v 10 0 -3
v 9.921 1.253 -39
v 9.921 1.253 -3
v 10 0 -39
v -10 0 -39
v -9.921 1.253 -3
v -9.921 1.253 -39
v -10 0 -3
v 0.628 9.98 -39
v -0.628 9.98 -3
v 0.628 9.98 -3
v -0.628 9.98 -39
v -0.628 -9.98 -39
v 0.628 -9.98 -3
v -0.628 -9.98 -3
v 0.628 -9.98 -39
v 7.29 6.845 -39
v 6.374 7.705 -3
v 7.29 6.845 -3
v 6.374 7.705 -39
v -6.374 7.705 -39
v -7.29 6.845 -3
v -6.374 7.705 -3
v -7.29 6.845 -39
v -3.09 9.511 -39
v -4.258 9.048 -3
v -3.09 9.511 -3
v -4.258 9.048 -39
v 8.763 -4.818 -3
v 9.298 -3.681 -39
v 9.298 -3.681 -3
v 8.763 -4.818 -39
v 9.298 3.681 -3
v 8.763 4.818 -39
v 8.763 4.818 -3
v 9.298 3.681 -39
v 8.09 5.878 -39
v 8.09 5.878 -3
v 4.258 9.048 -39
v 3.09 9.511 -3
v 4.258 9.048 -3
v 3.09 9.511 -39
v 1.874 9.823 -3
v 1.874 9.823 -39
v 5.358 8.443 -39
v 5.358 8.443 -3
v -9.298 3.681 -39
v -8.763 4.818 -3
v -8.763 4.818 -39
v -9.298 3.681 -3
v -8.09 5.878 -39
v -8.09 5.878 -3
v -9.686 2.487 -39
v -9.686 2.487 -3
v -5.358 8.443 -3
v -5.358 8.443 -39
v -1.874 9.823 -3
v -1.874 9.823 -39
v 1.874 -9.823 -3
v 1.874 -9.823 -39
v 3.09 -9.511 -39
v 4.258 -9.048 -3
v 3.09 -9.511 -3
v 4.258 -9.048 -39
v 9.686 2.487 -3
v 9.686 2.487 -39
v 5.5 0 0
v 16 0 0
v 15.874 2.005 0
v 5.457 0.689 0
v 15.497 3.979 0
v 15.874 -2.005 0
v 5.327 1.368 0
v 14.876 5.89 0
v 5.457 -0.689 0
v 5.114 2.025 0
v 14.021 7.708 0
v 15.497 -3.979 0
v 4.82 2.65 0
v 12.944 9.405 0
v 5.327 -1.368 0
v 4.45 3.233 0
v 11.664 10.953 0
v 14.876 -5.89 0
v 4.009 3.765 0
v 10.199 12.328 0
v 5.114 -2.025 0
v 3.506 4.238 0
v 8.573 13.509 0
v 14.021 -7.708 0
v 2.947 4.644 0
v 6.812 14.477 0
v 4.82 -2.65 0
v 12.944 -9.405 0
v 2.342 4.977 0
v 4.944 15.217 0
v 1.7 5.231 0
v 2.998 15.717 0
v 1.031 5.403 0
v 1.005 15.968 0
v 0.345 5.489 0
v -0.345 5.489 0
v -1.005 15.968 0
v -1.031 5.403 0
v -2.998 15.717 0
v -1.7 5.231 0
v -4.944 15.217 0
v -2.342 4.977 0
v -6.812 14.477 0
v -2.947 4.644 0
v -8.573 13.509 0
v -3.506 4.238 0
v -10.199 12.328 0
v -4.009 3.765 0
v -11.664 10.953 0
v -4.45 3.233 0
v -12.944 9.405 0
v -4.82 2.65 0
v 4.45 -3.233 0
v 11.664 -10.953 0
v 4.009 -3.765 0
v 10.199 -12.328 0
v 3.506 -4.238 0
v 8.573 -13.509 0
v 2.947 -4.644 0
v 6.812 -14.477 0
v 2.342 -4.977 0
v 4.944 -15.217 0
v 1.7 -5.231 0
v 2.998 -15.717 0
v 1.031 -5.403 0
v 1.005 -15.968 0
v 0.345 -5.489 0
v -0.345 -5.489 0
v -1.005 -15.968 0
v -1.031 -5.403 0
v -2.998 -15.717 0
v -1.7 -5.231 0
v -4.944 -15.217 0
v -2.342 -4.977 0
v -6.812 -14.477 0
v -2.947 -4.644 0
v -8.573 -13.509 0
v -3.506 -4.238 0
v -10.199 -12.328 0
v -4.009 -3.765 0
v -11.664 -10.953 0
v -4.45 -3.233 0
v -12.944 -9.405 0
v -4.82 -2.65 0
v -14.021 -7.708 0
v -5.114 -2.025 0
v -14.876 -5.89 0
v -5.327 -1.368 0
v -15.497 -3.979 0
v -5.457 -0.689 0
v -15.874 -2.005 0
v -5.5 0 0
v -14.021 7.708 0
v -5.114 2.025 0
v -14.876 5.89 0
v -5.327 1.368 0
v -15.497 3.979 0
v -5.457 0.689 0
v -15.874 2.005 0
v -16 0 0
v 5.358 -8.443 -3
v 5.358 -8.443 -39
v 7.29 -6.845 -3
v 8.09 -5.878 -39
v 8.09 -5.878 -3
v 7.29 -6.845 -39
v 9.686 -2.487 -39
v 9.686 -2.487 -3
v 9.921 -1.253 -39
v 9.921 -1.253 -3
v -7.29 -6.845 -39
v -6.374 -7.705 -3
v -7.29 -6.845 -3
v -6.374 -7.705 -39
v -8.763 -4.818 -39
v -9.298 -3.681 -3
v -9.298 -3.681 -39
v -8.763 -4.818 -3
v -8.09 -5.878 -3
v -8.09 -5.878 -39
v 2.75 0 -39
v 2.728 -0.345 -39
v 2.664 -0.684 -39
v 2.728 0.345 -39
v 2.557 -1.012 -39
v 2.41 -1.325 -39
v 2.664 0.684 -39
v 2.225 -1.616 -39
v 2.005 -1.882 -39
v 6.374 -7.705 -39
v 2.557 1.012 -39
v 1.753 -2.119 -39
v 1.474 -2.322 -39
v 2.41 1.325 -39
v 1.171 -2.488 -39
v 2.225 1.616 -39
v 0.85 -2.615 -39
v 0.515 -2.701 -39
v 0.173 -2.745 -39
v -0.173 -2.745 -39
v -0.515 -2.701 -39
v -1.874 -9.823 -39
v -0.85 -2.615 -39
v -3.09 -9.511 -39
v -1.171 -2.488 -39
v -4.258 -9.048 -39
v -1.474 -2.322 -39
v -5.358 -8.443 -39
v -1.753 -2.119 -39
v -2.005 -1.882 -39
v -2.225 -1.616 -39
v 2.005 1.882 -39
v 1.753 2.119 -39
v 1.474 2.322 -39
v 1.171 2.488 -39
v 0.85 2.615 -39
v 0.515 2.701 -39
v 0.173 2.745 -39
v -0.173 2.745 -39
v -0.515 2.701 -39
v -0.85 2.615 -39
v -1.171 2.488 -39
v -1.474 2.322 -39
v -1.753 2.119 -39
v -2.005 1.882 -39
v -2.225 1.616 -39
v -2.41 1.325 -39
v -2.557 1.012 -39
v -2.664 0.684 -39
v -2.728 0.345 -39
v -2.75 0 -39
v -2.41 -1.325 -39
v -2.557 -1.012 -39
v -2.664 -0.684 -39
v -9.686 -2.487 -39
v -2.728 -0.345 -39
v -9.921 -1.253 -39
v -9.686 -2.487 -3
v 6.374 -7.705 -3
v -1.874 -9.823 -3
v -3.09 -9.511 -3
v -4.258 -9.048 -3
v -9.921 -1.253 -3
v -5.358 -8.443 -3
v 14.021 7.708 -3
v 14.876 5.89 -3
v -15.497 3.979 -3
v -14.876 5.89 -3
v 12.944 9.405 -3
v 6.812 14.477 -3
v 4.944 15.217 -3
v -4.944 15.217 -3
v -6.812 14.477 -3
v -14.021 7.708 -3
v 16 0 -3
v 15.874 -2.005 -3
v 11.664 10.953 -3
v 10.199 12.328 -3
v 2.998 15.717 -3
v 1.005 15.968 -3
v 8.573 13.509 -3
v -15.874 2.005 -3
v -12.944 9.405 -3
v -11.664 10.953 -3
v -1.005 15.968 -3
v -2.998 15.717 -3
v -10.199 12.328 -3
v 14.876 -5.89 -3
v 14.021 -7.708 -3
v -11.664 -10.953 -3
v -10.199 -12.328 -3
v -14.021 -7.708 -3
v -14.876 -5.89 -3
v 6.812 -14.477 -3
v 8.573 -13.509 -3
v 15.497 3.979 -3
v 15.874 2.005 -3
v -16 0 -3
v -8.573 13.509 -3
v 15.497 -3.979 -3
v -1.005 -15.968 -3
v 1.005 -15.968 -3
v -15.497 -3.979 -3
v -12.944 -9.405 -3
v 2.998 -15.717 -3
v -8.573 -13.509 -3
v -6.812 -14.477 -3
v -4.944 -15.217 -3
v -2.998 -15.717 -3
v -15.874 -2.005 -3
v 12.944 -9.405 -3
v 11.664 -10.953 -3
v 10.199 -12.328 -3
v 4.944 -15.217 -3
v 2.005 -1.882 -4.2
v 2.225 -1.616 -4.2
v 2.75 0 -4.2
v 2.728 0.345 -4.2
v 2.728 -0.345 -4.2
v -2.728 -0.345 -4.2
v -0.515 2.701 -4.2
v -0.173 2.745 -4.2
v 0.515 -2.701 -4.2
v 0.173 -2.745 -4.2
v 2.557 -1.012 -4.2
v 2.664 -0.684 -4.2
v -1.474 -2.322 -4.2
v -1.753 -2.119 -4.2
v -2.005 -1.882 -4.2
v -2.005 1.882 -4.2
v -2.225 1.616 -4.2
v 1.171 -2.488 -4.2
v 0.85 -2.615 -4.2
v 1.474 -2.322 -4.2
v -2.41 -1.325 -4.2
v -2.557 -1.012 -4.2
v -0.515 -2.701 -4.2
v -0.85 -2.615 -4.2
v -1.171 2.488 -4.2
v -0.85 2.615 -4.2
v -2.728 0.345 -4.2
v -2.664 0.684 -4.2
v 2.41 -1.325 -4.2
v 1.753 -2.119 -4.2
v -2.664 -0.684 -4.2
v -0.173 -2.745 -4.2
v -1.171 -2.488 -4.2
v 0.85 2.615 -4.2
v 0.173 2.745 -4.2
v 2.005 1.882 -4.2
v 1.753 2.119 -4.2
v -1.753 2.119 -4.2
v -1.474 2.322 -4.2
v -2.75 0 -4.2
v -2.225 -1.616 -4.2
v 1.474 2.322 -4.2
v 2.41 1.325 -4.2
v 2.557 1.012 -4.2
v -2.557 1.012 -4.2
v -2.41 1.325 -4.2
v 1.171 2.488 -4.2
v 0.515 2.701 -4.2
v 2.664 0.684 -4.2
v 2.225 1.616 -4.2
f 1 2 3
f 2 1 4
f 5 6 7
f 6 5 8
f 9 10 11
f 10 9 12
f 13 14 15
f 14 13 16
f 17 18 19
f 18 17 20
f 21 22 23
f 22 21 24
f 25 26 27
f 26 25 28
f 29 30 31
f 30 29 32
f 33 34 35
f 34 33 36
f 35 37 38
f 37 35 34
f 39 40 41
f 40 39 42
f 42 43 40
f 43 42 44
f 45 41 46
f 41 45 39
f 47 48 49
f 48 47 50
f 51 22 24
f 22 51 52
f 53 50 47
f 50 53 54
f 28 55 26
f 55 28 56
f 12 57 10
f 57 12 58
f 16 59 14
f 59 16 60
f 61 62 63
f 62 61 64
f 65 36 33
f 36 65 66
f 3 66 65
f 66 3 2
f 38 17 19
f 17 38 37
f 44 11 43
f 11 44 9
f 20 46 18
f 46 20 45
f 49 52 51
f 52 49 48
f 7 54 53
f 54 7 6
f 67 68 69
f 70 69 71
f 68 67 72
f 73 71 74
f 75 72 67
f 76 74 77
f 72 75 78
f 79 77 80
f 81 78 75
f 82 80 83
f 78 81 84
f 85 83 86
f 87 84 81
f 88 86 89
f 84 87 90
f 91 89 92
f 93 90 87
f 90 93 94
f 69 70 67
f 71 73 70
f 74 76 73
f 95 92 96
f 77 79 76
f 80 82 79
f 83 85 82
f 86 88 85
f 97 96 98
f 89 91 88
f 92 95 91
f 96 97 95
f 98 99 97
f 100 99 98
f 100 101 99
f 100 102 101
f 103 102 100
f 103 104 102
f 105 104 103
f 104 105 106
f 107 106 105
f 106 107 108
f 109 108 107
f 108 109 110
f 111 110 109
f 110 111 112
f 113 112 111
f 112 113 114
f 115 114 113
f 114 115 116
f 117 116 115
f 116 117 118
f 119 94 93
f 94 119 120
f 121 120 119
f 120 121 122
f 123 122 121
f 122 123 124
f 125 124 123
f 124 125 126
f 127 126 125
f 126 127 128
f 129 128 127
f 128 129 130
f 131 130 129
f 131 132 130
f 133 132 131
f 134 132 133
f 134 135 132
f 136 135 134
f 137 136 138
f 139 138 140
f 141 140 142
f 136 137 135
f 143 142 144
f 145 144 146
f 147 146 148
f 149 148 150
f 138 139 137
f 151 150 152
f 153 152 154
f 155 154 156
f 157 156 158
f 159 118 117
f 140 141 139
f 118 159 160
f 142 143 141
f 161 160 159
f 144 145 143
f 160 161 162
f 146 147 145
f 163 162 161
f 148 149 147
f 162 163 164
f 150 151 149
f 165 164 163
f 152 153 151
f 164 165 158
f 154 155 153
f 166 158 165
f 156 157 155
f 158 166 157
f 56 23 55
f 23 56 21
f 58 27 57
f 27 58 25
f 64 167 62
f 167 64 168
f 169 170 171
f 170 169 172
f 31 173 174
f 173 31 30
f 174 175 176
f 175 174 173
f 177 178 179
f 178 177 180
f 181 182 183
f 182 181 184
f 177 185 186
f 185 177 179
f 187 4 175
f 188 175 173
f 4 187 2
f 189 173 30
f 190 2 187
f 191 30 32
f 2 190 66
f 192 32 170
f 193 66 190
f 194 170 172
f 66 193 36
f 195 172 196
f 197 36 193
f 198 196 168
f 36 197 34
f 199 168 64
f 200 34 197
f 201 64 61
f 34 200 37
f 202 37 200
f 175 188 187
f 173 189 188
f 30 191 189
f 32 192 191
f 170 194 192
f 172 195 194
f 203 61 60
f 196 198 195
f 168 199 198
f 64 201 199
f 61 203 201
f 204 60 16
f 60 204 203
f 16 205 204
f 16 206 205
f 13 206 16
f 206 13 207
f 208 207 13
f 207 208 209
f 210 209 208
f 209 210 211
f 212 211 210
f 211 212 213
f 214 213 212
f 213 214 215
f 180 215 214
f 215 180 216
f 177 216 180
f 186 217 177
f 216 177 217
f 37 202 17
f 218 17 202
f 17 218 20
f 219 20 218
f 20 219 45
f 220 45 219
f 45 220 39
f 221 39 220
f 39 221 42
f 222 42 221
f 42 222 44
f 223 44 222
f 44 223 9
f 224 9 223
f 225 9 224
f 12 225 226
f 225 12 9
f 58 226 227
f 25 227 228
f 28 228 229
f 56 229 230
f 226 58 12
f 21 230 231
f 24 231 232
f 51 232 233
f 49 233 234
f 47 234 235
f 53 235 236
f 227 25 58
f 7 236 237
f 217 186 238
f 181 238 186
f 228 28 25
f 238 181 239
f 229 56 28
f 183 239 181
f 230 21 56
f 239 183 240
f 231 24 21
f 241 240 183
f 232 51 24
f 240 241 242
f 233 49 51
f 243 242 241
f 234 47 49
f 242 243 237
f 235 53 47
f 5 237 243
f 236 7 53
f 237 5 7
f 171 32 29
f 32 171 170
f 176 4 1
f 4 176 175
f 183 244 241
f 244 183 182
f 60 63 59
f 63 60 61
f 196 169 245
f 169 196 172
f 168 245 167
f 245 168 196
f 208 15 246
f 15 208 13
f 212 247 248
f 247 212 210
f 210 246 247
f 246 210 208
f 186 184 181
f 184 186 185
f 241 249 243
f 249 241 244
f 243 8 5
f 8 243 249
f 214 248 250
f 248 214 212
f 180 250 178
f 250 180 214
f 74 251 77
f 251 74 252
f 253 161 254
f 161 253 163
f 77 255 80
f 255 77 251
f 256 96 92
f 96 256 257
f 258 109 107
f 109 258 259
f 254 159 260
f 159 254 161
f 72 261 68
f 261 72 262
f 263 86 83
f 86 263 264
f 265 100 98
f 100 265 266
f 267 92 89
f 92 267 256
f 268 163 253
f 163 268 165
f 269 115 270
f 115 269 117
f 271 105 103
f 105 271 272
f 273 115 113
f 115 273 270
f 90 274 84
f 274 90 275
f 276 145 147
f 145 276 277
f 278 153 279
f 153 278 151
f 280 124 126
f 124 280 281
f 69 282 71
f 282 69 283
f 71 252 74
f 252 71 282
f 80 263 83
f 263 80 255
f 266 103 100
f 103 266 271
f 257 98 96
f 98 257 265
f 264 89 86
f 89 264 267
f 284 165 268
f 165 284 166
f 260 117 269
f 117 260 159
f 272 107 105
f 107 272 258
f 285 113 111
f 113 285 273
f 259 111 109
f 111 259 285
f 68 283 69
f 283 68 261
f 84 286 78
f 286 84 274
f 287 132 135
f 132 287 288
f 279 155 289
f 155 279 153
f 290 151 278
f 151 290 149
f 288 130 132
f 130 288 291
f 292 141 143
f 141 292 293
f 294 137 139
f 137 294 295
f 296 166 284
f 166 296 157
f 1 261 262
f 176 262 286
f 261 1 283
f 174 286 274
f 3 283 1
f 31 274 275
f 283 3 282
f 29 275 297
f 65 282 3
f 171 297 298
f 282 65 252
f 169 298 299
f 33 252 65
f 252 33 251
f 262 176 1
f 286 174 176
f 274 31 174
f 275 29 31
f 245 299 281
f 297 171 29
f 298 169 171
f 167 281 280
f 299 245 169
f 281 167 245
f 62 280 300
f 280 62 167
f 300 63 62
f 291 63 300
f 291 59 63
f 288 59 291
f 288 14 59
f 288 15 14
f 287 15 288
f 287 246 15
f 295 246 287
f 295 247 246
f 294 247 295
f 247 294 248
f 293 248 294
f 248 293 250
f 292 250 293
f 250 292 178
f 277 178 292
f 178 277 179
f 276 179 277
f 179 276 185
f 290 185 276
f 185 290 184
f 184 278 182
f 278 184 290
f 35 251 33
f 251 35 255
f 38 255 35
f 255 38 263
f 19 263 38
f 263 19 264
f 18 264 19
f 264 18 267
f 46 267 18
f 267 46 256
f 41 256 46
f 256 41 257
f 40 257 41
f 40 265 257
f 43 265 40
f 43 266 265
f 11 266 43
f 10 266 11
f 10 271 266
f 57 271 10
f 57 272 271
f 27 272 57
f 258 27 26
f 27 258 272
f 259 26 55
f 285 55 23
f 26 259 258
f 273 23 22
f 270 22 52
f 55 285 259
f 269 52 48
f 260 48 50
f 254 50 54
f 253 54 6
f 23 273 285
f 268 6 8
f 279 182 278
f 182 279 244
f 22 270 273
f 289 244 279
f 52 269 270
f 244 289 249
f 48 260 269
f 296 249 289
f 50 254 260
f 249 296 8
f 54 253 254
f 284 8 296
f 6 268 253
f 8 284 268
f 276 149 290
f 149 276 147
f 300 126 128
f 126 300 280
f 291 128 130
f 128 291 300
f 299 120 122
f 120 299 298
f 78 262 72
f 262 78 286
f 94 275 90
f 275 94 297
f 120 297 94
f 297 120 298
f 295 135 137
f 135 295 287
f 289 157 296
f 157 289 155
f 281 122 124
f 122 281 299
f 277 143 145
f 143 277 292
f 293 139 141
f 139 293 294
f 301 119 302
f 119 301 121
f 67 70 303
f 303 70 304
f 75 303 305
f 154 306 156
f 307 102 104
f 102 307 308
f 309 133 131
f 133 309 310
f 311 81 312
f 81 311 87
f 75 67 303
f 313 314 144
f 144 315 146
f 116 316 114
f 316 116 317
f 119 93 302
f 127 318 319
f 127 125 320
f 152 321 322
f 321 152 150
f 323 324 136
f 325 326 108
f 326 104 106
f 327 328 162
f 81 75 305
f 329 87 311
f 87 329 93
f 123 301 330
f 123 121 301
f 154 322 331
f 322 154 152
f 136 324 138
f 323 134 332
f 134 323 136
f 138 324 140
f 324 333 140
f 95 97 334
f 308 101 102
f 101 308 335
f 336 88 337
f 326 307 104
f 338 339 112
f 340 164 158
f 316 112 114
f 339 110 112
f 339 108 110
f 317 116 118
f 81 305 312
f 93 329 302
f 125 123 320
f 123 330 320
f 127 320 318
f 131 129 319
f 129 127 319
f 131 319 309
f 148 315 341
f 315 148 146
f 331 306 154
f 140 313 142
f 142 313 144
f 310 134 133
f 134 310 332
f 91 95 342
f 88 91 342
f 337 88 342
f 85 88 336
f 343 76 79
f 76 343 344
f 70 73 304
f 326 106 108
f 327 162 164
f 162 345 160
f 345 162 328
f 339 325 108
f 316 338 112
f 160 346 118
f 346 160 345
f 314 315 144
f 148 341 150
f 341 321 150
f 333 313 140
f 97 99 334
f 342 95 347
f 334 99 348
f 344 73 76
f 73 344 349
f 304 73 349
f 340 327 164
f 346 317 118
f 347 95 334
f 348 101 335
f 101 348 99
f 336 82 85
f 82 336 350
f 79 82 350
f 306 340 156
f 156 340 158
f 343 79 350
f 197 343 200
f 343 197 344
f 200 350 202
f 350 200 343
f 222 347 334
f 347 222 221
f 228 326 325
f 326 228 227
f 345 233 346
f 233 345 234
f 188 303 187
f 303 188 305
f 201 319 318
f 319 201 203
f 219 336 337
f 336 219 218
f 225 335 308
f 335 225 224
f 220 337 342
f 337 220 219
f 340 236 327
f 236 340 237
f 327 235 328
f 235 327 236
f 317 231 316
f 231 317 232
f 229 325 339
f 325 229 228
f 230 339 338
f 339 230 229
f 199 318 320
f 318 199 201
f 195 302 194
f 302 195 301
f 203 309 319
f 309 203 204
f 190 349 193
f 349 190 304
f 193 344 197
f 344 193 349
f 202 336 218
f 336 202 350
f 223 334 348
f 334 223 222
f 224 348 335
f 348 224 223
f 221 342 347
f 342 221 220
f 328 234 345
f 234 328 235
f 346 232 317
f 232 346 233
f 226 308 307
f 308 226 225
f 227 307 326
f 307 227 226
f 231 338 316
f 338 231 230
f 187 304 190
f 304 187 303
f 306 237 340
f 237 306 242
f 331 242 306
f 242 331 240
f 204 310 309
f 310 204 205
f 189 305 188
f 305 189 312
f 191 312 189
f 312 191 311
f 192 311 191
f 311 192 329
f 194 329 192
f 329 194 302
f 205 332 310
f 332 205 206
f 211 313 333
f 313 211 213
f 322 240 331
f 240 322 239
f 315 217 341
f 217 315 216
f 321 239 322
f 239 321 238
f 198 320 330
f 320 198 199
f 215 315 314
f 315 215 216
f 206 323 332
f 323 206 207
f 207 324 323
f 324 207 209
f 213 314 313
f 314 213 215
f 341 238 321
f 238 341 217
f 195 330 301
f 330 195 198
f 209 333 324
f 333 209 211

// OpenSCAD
$fn = 50;


difference() {
	union() {
		translate(v = [0, 0, -39.0000000000]) {
			cylinder(h = 39, r = 10.0000000000);
		}
		translate(v = [0, 0, -3.0000000000]) {
			cylinder(h = 3, r = 16.0000000000);
		}
	}
	union() {
		translate(v = [0, 0, 0]) {
			rotate(a = [0, 0, 0]) {
				difference() {
					union() {
						#translate(v = [0, 0, -39.0000000000]) {
							cylinder(h = 39, r = 2.2500000000);
						}
						#translate(v = [0, 0, -4.2000000000]) {
							cylinder(h = 4.2000000000, r = 10.0000000000, r1 = 2.7500000000, r2 = 5.5000000000);
						}
						#translate(v = [0, 0, -39.0000000000]) {
							cylinder(h = 39, r = 2.7500000000);
						}
						#translate(v = [0, 0, -39.0000000000]) {
							cylinder(h = 39, r = 2.2500000000);
						}
					}
					union();
				}
			}
		}
	}
}
